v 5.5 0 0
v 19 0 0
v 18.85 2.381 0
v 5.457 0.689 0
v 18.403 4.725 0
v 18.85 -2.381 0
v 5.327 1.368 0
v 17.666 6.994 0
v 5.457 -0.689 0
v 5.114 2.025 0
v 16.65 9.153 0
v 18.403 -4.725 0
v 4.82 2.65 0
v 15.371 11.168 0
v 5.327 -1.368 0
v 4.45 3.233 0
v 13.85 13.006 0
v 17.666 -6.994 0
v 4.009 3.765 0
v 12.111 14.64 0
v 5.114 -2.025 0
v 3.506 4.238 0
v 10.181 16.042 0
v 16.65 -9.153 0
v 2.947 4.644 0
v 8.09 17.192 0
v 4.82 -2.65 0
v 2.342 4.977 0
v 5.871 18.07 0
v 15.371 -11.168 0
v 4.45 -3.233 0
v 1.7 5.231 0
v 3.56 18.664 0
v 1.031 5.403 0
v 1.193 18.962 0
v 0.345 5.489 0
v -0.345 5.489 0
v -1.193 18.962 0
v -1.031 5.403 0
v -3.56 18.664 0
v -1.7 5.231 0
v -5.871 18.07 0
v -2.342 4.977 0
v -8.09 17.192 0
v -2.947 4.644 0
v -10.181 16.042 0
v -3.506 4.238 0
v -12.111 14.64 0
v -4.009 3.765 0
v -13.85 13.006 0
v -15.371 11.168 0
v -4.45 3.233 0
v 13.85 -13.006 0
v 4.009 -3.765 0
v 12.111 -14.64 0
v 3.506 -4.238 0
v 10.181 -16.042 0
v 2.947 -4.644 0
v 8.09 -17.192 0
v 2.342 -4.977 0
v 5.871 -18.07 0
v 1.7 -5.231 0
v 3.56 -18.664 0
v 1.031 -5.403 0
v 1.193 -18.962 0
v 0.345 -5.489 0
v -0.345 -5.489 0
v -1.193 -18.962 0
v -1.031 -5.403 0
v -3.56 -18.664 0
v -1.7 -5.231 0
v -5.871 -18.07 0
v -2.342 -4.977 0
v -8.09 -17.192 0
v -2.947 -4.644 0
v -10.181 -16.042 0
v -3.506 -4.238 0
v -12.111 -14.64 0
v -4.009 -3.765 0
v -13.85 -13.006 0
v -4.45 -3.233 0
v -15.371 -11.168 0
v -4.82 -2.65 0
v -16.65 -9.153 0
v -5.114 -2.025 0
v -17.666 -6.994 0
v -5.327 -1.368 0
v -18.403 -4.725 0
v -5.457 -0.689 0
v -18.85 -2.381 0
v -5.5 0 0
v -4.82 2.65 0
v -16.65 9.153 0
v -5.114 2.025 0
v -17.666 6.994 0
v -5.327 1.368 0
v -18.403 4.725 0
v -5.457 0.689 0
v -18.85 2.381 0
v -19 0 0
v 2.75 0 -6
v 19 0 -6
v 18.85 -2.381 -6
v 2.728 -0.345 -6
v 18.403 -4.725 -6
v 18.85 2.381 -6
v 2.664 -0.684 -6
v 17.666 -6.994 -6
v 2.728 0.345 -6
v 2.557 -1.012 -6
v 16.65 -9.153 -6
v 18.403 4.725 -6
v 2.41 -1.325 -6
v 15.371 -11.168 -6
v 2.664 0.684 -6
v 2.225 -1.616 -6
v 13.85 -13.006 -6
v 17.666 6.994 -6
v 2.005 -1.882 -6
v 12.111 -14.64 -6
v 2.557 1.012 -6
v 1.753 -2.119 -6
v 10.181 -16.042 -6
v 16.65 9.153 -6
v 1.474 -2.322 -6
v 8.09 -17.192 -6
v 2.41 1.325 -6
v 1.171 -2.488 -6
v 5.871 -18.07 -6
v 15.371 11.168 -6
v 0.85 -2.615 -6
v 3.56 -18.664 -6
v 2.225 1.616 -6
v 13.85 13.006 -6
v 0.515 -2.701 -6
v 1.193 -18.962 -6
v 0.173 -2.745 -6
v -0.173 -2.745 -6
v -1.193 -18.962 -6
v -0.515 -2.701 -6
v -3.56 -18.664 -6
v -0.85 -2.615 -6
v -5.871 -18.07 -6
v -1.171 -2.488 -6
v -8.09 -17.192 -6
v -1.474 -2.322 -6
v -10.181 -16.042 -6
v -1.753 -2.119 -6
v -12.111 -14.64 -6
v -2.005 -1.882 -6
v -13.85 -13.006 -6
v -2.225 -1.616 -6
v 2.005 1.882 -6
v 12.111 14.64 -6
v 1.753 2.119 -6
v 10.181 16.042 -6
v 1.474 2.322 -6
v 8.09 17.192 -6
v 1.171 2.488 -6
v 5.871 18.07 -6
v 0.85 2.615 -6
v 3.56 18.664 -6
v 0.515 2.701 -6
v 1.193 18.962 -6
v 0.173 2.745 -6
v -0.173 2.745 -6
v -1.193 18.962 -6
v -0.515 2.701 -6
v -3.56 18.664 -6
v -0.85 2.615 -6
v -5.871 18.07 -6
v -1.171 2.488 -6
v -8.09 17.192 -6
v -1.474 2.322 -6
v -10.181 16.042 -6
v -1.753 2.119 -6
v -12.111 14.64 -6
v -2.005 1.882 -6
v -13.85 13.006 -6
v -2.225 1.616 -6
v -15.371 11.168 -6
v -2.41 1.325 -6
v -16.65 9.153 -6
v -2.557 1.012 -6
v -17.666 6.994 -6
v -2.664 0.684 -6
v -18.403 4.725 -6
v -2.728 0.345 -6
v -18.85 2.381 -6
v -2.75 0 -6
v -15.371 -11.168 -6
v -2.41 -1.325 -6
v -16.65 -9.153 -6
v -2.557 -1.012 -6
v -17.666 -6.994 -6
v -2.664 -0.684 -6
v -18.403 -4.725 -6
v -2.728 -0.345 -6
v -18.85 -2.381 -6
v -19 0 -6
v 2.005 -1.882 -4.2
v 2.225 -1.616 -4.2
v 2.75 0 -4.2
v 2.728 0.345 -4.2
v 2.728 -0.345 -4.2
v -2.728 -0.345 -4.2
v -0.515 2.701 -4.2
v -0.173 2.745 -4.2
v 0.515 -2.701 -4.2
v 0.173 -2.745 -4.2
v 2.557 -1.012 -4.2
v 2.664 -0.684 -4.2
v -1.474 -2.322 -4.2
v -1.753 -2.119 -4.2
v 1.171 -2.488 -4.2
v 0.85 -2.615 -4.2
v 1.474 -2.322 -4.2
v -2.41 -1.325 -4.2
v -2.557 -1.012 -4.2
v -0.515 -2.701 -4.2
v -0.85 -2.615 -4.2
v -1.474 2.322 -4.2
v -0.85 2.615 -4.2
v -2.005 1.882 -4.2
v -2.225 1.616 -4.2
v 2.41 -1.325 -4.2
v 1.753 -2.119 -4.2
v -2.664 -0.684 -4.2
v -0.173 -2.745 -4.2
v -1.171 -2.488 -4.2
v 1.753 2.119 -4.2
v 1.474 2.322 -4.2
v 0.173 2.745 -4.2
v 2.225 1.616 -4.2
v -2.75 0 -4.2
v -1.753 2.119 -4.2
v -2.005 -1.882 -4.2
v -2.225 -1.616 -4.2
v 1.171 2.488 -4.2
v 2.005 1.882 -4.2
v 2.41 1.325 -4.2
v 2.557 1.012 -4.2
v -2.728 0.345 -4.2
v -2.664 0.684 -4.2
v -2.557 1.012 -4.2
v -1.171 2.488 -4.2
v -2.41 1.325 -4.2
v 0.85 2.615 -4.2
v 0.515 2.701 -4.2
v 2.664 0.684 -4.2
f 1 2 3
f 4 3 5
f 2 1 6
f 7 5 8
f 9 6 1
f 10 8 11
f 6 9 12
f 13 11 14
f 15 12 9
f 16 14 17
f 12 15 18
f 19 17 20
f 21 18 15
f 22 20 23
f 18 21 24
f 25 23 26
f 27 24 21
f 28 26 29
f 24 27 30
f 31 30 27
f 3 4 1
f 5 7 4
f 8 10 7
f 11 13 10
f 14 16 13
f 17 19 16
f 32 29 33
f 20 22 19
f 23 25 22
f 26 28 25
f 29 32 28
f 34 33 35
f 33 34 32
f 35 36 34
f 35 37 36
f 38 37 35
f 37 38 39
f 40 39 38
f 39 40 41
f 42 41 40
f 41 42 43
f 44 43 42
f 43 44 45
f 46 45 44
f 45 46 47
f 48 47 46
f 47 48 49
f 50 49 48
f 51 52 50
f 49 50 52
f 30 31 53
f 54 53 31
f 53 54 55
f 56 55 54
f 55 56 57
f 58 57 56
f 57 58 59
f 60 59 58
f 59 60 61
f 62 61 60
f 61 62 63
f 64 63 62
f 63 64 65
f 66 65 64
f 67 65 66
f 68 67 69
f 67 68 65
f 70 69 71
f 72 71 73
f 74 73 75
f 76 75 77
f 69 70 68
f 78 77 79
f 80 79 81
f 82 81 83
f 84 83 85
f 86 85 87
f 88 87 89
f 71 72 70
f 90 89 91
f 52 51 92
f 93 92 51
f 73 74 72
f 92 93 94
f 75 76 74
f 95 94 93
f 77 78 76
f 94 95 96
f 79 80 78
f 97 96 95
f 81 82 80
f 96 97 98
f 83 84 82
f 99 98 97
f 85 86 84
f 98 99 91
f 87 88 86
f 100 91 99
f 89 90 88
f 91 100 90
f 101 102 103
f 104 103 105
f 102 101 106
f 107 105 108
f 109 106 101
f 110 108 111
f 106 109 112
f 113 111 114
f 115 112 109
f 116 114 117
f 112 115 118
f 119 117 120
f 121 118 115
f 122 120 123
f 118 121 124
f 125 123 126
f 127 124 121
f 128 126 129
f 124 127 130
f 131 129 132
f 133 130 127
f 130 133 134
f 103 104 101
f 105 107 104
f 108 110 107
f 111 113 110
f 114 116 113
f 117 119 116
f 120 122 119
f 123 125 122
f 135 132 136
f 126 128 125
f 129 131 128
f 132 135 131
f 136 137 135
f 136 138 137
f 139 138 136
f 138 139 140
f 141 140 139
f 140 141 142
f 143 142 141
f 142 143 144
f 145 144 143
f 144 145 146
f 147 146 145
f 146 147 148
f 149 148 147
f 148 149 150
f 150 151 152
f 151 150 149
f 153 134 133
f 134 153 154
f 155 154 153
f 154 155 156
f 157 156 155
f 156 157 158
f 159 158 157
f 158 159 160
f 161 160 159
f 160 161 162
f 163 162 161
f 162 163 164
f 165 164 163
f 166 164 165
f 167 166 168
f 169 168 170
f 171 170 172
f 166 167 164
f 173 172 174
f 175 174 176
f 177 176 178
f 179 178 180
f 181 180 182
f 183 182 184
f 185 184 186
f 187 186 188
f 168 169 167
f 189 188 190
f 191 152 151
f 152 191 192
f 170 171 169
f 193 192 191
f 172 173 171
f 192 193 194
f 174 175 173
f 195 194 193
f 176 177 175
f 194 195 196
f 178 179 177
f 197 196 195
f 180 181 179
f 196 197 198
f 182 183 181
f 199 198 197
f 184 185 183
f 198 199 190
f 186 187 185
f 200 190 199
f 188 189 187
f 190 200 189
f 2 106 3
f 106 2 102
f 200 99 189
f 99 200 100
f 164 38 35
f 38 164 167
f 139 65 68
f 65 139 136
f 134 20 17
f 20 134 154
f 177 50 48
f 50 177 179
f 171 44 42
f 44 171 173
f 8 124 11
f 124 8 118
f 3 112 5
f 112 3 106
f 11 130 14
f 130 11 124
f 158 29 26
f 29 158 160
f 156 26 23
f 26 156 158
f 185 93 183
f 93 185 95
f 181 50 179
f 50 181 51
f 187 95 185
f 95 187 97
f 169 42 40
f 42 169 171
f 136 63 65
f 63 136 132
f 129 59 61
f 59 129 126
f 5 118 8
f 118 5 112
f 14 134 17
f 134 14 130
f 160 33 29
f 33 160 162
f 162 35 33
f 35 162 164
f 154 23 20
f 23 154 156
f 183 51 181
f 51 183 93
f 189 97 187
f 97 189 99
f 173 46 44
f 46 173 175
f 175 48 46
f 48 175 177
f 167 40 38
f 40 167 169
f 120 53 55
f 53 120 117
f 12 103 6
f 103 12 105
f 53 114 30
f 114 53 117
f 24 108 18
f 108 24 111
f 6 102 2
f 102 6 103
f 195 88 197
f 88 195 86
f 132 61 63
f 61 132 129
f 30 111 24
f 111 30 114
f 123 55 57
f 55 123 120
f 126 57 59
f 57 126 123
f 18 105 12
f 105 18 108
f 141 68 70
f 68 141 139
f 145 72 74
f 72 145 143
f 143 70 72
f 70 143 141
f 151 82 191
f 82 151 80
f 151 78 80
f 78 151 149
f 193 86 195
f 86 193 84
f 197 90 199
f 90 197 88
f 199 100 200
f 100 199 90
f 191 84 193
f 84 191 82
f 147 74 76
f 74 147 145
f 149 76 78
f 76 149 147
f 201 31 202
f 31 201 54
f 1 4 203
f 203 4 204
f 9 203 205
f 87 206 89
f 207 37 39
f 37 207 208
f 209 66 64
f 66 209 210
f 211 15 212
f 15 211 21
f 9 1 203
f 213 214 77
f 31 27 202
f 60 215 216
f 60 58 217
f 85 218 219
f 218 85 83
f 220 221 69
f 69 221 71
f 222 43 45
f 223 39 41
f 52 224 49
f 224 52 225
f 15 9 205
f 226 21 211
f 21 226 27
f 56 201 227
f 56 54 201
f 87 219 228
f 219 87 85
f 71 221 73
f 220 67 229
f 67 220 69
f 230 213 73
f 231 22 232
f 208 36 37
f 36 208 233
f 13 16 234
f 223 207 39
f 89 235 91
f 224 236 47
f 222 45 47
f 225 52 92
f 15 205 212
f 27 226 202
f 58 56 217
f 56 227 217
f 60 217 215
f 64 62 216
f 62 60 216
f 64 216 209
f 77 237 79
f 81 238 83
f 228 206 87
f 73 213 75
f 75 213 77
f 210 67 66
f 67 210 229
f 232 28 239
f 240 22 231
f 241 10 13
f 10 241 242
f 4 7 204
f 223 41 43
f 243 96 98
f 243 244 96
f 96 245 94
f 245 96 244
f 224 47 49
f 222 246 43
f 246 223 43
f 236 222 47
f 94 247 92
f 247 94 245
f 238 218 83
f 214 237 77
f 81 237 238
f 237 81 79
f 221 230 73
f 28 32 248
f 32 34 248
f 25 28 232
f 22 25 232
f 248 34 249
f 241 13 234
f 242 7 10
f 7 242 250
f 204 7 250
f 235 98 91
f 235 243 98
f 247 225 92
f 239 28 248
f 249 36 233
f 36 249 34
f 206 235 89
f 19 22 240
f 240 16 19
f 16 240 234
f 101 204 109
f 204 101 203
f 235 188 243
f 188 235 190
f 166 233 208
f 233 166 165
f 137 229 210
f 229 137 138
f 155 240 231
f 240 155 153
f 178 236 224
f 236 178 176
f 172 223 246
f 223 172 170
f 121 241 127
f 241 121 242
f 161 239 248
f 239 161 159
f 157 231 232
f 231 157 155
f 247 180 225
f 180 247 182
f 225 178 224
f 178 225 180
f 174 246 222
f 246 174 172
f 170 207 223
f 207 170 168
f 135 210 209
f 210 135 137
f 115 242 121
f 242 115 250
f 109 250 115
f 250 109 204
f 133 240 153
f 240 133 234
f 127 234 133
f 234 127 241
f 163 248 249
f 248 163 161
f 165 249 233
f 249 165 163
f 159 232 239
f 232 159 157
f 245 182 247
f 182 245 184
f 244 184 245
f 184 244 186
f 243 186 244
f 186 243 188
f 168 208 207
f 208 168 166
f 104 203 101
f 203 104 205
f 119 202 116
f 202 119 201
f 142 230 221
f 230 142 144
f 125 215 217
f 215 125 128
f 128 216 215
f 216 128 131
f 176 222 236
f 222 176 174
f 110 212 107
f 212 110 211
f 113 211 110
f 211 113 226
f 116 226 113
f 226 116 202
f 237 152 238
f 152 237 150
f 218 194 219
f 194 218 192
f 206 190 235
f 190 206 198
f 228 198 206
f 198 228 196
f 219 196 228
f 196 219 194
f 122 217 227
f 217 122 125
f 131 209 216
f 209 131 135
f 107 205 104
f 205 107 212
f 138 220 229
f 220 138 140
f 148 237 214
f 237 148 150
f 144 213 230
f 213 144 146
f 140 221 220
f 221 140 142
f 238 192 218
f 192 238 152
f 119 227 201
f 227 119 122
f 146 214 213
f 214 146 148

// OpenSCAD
$fn = 50;


difference() {
	union() {
		translate(v = [0, 0, -6.0000000000]) {
			cylinder(h = 6, r = 10.0000000000);
		}
		translate(v = [0, 0, -6.0000000000]) {
			cylinder(h = 6, r = 19.0000000000);
		}
	}
	union() {
		translate(v = [0, 0, 0]) {
			rotate(a = [0, 0, 0]) {
				difference() {
					union() {
						#translate(v = [0, 0, -6.0000000000]) {
							cylinder(h = 6, r = 2.2500000000);
						}
						#translate(v = [0, 0, -4.2000000000]) {
							cylinder(h = 4.2000000000, r1 = 2.7500000000, r2 = 5.5000000000);
						}
						#translate(v = [0, 0, -6.0000000000]) {
							cylinder(h = 6, r = 2.7500000000);
						}
						#translate(v = [0, 0, -6.0000000000]) {
							cylinder(h = 6, r = 2.2500000000);
						}
					}
					union();
				}
			}
		}
	}
}
